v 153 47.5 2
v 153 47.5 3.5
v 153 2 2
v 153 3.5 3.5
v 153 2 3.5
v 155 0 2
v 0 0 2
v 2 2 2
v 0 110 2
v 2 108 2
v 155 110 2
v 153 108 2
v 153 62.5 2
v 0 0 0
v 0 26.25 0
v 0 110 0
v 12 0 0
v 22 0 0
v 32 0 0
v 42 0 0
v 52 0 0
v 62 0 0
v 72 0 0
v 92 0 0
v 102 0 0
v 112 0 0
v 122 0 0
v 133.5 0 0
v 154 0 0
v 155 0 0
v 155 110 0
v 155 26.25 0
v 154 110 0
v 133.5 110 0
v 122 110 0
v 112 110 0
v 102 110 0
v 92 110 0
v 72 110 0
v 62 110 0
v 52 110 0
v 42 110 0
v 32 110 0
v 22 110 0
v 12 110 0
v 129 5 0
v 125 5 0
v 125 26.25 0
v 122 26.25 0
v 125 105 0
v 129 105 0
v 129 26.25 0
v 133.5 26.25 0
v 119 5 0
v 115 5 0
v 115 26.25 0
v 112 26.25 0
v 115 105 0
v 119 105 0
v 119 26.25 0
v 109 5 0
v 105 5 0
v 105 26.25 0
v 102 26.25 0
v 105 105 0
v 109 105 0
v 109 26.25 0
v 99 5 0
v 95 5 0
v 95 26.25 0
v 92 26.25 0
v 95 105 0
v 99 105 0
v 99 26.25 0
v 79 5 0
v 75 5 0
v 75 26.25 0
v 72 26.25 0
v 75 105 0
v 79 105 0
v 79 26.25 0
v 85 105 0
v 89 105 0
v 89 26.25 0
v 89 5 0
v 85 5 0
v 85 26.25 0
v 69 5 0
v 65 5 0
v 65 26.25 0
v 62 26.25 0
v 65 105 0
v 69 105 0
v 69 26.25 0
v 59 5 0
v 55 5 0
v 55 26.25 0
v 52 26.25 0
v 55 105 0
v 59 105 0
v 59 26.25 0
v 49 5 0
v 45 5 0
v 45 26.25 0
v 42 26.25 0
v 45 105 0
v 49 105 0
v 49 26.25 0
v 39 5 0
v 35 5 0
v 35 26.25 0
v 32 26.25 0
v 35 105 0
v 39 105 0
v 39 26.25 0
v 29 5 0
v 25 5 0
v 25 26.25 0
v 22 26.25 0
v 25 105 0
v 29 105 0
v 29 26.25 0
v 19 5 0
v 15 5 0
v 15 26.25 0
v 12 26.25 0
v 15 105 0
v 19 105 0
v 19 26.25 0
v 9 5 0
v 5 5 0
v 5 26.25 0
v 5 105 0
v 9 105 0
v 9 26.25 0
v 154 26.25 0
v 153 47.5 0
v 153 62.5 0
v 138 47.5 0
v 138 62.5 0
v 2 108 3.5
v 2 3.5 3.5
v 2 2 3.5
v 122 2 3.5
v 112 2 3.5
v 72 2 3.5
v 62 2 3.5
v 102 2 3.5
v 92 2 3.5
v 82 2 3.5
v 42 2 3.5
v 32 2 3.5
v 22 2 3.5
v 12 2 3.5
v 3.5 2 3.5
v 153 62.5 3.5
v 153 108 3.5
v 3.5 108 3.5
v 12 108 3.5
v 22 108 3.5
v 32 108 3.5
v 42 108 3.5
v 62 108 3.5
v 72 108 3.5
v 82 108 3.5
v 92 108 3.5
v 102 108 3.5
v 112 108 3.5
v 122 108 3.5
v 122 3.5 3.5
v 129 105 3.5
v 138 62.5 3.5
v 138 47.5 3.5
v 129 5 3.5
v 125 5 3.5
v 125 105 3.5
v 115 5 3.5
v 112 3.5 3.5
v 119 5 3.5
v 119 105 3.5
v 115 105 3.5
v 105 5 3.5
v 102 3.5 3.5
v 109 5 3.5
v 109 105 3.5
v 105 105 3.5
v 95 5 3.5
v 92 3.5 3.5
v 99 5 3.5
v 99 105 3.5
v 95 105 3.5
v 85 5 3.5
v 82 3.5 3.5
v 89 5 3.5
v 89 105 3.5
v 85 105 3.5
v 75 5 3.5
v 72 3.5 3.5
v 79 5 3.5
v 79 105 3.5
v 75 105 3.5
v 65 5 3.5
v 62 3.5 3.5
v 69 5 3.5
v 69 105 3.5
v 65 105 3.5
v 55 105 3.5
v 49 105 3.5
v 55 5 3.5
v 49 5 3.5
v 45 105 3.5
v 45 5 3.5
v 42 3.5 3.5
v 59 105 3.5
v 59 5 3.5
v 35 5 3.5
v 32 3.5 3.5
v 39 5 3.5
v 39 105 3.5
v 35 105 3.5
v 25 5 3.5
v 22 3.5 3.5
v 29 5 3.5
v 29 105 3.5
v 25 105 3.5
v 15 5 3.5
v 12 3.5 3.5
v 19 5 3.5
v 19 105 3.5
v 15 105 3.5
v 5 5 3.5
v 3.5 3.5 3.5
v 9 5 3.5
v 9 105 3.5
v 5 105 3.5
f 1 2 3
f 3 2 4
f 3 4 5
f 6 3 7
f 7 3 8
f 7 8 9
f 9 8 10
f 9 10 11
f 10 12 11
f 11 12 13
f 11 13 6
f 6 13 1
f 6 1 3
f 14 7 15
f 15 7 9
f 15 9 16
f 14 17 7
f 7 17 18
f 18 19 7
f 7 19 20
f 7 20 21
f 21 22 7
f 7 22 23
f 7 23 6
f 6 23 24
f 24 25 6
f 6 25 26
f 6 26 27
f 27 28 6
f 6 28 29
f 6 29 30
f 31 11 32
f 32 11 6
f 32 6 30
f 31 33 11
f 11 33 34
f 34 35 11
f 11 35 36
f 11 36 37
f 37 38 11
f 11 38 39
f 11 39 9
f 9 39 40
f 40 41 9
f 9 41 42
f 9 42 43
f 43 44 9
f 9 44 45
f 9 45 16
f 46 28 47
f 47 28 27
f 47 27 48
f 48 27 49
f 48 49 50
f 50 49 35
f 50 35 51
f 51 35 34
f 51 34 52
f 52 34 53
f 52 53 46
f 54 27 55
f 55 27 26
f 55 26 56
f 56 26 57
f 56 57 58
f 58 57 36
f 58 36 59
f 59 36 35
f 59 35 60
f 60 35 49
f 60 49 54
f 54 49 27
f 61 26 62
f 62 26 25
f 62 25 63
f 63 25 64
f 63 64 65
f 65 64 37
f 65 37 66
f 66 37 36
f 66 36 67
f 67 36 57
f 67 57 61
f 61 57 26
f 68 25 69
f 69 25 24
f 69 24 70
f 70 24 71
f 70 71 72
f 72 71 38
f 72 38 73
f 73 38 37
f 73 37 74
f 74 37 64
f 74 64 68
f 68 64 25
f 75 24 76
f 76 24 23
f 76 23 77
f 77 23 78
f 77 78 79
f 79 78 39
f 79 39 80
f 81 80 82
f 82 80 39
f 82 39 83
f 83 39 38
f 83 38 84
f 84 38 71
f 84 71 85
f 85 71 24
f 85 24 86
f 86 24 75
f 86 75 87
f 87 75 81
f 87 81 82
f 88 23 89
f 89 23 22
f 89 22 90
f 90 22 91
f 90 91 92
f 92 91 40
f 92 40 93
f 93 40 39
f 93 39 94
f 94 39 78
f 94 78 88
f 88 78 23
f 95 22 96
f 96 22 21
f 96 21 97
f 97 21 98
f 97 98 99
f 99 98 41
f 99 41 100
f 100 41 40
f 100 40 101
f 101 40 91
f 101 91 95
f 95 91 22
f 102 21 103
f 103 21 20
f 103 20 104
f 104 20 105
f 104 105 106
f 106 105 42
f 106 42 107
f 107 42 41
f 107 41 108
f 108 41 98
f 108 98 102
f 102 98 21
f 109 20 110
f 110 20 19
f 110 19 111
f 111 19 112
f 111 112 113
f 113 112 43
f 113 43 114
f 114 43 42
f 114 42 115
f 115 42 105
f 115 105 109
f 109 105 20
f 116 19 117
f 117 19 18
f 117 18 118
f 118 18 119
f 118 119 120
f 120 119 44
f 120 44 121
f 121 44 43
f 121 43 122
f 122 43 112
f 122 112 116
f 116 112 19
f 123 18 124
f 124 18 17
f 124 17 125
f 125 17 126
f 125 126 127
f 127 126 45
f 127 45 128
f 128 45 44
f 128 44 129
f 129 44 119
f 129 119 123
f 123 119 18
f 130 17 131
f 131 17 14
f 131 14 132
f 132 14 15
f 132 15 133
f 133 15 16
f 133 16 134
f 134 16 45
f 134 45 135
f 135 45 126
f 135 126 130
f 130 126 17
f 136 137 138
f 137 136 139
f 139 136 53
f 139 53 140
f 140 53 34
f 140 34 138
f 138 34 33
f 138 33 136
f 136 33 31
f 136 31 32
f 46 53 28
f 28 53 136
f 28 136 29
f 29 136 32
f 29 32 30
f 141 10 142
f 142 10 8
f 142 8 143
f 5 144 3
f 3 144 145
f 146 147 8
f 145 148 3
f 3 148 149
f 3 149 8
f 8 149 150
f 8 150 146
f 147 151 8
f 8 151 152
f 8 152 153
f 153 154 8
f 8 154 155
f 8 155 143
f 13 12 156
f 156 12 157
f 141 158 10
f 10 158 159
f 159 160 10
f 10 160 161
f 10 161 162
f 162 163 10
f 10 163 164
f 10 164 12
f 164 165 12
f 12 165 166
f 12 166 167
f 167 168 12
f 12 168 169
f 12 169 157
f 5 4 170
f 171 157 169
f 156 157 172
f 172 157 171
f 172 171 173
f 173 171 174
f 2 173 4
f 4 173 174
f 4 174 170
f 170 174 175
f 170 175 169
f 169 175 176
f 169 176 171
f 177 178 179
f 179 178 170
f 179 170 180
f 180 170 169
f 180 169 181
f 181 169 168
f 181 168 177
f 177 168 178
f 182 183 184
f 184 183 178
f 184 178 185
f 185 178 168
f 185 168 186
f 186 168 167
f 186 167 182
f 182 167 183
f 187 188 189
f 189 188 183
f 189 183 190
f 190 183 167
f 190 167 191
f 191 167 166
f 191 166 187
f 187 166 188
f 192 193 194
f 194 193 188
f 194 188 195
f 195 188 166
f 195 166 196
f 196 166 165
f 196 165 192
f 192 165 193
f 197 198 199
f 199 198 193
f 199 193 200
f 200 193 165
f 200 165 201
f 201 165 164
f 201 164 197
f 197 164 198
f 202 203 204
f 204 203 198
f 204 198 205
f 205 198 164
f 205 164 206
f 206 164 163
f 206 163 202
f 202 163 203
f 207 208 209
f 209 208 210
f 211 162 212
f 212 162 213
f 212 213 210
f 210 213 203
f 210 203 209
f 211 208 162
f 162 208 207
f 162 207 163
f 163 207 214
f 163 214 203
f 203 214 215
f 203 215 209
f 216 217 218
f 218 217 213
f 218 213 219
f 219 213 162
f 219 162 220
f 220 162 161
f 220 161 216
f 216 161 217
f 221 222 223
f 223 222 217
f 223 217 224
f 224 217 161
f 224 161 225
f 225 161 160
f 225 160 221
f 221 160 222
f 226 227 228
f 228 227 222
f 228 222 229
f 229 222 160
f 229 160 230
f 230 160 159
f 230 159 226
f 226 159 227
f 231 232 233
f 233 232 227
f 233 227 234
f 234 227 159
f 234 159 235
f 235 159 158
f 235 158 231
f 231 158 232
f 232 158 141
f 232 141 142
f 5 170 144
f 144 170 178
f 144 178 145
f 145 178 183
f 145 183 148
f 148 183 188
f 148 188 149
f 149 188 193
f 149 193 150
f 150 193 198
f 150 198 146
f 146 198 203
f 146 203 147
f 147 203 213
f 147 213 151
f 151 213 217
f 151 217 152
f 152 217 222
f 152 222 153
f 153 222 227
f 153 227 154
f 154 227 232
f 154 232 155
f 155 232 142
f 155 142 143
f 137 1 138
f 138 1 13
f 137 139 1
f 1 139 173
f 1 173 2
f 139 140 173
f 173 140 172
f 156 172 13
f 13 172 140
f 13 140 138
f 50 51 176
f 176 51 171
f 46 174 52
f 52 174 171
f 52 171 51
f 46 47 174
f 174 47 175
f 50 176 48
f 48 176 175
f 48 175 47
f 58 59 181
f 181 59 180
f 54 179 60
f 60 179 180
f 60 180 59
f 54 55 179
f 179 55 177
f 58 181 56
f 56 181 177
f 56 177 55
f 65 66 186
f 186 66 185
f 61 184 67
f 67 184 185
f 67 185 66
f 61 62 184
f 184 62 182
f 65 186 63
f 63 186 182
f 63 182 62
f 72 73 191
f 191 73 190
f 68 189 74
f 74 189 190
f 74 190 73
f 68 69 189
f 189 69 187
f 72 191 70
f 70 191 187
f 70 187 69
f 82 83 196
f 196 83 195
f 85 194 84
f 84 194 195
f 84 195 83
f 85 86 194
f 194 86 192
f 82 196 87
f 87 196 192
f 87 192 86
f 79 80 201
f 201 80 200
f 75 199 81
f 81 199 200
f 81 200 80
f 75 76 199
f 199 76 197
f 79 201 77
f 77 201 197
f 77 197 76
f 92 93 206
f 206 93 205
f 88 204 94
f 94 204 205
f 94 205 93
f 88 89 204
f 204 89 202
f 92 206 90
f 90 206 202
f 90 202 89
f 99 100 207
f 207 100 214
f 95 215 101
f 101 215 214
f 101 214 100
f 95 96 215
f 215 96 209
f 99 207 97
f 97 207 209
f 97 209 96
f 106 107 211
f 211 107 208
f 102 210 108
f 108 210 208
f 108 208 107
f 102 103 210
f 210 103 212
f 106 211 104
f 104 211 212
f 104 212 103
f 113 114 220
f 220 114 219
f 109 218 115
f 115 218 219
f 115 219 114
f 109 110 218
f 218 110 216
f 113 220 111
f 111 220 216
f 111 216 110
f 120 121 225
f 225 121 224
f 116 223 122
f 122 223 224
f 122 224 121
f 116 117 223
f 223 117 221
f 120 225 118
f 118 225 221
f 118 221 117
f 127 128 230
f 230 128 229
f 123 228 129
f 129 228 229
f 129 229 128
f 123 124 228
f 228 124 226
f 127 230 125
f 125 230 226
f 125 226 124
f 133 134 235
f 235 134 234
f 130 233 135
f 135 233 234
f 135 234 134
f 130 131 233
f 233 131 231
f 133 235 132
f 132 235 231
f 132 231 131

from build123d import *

# Parameters (mm, degrees)
SKETCH1_W           = 155
SKETCH1_H           = 110
BOSS_EXTRUDE1_DEPTH = 2
SKETCH2_W           = 151
SKETCH2_H           = 106
BOSS_EXTRUDE2_DEPTH = 1.5
SKETCH3_W           = 15
SKETCH3_H           = 15
CUT_EXTRUDE2_DEPTH  = 3.5
SKETCH5_W           = 4
SKETCH5_H           = 100
CUT_EXTRUDE3_DEPTH  = 3.5


with BuildPart() as part:
    # Sketch1 → Boss-Extrude1 (new body)
    with BuildSketch(Plane.XY):
        with Locations((77.5, 55)):
            Rectangle(SKETCH1_W, SKETCH1_H)
    extrude(amount=BOSS_EXTRUDE1_DEPTH)

    # Sketch2 → Boss-Extrude2 (add)
    with BuildSketch(Plane.XY.offset(2)):
        with Locations((77.5, 55)):
            Rectangle(SKETCH2_W, SKETCH2_H)
    extrude(amount=BOSS_EXTRUDE2_DEPTH)

    # Sketch3 → Cut-Extrude2 (cut)
    with BuildSketch(Plane.XY.offset(3.5)):
        with Locations((145.5, 55)):
            Rectangle(SKETCH3_W, SKETCH3_H)
    extrude(amount=-CUT_EXTRUDE2_DEPTH, mode=Mode.SUBTRACT)

    # Sketch5 → Cut-Extrude3 (cut)
    with BuildSketch(Plane.XY.offset(3.5)):
        with Locations((17, 55)):
            Rectangle(SKETCH5_W, SKETCH5_H)
        with Locations((7, 55)):
            Rectangle(SKETCH5_W, SKETCH5_H)
        with Locations((27, 55)):
            Rectangle(SKETCH5_W, SKETCH5_H)
        with Locations((37, 55)):
            Rectangle(SKETCH5_W, SKETCH5_H)
        with Locations((47, 55)):
            Rectangle(SKETCH5_W, SKETCH5_H)
        with Locations((57, 55)):
            Rectangle(SKETCH5_W, SKETCH5_H)
        with Locations((67, 55)):
            Rectangle(SKETCH5_W, SKETCH5_H)
        with Locations((77, 55)):
            Rectangle(SKETCH5_W, SKETCH5_H)
        with Locations((87, 55)):
            Rectangle(SKETCH5_W, SKETCH5_H)
        with Locations((97, 55)):
            Rectangle(SKETCH5_W, SKETCH5_H)
        with Locations((107, 55)):
            Rectangle(SKETCH5_W, SKETCH5_H)
        with Locations((117, 55)):
            Rectangle(SKETCH5_W, SKETCH5_H)
        with Locations((127, 55)):
            Rectangle(SKETCH5_W, SKETCH5_H)
    extrude(amount=-CUT_EXTRUDE3_DEPTH, mode=Mode.SUBTRACT)


solid = part.part
